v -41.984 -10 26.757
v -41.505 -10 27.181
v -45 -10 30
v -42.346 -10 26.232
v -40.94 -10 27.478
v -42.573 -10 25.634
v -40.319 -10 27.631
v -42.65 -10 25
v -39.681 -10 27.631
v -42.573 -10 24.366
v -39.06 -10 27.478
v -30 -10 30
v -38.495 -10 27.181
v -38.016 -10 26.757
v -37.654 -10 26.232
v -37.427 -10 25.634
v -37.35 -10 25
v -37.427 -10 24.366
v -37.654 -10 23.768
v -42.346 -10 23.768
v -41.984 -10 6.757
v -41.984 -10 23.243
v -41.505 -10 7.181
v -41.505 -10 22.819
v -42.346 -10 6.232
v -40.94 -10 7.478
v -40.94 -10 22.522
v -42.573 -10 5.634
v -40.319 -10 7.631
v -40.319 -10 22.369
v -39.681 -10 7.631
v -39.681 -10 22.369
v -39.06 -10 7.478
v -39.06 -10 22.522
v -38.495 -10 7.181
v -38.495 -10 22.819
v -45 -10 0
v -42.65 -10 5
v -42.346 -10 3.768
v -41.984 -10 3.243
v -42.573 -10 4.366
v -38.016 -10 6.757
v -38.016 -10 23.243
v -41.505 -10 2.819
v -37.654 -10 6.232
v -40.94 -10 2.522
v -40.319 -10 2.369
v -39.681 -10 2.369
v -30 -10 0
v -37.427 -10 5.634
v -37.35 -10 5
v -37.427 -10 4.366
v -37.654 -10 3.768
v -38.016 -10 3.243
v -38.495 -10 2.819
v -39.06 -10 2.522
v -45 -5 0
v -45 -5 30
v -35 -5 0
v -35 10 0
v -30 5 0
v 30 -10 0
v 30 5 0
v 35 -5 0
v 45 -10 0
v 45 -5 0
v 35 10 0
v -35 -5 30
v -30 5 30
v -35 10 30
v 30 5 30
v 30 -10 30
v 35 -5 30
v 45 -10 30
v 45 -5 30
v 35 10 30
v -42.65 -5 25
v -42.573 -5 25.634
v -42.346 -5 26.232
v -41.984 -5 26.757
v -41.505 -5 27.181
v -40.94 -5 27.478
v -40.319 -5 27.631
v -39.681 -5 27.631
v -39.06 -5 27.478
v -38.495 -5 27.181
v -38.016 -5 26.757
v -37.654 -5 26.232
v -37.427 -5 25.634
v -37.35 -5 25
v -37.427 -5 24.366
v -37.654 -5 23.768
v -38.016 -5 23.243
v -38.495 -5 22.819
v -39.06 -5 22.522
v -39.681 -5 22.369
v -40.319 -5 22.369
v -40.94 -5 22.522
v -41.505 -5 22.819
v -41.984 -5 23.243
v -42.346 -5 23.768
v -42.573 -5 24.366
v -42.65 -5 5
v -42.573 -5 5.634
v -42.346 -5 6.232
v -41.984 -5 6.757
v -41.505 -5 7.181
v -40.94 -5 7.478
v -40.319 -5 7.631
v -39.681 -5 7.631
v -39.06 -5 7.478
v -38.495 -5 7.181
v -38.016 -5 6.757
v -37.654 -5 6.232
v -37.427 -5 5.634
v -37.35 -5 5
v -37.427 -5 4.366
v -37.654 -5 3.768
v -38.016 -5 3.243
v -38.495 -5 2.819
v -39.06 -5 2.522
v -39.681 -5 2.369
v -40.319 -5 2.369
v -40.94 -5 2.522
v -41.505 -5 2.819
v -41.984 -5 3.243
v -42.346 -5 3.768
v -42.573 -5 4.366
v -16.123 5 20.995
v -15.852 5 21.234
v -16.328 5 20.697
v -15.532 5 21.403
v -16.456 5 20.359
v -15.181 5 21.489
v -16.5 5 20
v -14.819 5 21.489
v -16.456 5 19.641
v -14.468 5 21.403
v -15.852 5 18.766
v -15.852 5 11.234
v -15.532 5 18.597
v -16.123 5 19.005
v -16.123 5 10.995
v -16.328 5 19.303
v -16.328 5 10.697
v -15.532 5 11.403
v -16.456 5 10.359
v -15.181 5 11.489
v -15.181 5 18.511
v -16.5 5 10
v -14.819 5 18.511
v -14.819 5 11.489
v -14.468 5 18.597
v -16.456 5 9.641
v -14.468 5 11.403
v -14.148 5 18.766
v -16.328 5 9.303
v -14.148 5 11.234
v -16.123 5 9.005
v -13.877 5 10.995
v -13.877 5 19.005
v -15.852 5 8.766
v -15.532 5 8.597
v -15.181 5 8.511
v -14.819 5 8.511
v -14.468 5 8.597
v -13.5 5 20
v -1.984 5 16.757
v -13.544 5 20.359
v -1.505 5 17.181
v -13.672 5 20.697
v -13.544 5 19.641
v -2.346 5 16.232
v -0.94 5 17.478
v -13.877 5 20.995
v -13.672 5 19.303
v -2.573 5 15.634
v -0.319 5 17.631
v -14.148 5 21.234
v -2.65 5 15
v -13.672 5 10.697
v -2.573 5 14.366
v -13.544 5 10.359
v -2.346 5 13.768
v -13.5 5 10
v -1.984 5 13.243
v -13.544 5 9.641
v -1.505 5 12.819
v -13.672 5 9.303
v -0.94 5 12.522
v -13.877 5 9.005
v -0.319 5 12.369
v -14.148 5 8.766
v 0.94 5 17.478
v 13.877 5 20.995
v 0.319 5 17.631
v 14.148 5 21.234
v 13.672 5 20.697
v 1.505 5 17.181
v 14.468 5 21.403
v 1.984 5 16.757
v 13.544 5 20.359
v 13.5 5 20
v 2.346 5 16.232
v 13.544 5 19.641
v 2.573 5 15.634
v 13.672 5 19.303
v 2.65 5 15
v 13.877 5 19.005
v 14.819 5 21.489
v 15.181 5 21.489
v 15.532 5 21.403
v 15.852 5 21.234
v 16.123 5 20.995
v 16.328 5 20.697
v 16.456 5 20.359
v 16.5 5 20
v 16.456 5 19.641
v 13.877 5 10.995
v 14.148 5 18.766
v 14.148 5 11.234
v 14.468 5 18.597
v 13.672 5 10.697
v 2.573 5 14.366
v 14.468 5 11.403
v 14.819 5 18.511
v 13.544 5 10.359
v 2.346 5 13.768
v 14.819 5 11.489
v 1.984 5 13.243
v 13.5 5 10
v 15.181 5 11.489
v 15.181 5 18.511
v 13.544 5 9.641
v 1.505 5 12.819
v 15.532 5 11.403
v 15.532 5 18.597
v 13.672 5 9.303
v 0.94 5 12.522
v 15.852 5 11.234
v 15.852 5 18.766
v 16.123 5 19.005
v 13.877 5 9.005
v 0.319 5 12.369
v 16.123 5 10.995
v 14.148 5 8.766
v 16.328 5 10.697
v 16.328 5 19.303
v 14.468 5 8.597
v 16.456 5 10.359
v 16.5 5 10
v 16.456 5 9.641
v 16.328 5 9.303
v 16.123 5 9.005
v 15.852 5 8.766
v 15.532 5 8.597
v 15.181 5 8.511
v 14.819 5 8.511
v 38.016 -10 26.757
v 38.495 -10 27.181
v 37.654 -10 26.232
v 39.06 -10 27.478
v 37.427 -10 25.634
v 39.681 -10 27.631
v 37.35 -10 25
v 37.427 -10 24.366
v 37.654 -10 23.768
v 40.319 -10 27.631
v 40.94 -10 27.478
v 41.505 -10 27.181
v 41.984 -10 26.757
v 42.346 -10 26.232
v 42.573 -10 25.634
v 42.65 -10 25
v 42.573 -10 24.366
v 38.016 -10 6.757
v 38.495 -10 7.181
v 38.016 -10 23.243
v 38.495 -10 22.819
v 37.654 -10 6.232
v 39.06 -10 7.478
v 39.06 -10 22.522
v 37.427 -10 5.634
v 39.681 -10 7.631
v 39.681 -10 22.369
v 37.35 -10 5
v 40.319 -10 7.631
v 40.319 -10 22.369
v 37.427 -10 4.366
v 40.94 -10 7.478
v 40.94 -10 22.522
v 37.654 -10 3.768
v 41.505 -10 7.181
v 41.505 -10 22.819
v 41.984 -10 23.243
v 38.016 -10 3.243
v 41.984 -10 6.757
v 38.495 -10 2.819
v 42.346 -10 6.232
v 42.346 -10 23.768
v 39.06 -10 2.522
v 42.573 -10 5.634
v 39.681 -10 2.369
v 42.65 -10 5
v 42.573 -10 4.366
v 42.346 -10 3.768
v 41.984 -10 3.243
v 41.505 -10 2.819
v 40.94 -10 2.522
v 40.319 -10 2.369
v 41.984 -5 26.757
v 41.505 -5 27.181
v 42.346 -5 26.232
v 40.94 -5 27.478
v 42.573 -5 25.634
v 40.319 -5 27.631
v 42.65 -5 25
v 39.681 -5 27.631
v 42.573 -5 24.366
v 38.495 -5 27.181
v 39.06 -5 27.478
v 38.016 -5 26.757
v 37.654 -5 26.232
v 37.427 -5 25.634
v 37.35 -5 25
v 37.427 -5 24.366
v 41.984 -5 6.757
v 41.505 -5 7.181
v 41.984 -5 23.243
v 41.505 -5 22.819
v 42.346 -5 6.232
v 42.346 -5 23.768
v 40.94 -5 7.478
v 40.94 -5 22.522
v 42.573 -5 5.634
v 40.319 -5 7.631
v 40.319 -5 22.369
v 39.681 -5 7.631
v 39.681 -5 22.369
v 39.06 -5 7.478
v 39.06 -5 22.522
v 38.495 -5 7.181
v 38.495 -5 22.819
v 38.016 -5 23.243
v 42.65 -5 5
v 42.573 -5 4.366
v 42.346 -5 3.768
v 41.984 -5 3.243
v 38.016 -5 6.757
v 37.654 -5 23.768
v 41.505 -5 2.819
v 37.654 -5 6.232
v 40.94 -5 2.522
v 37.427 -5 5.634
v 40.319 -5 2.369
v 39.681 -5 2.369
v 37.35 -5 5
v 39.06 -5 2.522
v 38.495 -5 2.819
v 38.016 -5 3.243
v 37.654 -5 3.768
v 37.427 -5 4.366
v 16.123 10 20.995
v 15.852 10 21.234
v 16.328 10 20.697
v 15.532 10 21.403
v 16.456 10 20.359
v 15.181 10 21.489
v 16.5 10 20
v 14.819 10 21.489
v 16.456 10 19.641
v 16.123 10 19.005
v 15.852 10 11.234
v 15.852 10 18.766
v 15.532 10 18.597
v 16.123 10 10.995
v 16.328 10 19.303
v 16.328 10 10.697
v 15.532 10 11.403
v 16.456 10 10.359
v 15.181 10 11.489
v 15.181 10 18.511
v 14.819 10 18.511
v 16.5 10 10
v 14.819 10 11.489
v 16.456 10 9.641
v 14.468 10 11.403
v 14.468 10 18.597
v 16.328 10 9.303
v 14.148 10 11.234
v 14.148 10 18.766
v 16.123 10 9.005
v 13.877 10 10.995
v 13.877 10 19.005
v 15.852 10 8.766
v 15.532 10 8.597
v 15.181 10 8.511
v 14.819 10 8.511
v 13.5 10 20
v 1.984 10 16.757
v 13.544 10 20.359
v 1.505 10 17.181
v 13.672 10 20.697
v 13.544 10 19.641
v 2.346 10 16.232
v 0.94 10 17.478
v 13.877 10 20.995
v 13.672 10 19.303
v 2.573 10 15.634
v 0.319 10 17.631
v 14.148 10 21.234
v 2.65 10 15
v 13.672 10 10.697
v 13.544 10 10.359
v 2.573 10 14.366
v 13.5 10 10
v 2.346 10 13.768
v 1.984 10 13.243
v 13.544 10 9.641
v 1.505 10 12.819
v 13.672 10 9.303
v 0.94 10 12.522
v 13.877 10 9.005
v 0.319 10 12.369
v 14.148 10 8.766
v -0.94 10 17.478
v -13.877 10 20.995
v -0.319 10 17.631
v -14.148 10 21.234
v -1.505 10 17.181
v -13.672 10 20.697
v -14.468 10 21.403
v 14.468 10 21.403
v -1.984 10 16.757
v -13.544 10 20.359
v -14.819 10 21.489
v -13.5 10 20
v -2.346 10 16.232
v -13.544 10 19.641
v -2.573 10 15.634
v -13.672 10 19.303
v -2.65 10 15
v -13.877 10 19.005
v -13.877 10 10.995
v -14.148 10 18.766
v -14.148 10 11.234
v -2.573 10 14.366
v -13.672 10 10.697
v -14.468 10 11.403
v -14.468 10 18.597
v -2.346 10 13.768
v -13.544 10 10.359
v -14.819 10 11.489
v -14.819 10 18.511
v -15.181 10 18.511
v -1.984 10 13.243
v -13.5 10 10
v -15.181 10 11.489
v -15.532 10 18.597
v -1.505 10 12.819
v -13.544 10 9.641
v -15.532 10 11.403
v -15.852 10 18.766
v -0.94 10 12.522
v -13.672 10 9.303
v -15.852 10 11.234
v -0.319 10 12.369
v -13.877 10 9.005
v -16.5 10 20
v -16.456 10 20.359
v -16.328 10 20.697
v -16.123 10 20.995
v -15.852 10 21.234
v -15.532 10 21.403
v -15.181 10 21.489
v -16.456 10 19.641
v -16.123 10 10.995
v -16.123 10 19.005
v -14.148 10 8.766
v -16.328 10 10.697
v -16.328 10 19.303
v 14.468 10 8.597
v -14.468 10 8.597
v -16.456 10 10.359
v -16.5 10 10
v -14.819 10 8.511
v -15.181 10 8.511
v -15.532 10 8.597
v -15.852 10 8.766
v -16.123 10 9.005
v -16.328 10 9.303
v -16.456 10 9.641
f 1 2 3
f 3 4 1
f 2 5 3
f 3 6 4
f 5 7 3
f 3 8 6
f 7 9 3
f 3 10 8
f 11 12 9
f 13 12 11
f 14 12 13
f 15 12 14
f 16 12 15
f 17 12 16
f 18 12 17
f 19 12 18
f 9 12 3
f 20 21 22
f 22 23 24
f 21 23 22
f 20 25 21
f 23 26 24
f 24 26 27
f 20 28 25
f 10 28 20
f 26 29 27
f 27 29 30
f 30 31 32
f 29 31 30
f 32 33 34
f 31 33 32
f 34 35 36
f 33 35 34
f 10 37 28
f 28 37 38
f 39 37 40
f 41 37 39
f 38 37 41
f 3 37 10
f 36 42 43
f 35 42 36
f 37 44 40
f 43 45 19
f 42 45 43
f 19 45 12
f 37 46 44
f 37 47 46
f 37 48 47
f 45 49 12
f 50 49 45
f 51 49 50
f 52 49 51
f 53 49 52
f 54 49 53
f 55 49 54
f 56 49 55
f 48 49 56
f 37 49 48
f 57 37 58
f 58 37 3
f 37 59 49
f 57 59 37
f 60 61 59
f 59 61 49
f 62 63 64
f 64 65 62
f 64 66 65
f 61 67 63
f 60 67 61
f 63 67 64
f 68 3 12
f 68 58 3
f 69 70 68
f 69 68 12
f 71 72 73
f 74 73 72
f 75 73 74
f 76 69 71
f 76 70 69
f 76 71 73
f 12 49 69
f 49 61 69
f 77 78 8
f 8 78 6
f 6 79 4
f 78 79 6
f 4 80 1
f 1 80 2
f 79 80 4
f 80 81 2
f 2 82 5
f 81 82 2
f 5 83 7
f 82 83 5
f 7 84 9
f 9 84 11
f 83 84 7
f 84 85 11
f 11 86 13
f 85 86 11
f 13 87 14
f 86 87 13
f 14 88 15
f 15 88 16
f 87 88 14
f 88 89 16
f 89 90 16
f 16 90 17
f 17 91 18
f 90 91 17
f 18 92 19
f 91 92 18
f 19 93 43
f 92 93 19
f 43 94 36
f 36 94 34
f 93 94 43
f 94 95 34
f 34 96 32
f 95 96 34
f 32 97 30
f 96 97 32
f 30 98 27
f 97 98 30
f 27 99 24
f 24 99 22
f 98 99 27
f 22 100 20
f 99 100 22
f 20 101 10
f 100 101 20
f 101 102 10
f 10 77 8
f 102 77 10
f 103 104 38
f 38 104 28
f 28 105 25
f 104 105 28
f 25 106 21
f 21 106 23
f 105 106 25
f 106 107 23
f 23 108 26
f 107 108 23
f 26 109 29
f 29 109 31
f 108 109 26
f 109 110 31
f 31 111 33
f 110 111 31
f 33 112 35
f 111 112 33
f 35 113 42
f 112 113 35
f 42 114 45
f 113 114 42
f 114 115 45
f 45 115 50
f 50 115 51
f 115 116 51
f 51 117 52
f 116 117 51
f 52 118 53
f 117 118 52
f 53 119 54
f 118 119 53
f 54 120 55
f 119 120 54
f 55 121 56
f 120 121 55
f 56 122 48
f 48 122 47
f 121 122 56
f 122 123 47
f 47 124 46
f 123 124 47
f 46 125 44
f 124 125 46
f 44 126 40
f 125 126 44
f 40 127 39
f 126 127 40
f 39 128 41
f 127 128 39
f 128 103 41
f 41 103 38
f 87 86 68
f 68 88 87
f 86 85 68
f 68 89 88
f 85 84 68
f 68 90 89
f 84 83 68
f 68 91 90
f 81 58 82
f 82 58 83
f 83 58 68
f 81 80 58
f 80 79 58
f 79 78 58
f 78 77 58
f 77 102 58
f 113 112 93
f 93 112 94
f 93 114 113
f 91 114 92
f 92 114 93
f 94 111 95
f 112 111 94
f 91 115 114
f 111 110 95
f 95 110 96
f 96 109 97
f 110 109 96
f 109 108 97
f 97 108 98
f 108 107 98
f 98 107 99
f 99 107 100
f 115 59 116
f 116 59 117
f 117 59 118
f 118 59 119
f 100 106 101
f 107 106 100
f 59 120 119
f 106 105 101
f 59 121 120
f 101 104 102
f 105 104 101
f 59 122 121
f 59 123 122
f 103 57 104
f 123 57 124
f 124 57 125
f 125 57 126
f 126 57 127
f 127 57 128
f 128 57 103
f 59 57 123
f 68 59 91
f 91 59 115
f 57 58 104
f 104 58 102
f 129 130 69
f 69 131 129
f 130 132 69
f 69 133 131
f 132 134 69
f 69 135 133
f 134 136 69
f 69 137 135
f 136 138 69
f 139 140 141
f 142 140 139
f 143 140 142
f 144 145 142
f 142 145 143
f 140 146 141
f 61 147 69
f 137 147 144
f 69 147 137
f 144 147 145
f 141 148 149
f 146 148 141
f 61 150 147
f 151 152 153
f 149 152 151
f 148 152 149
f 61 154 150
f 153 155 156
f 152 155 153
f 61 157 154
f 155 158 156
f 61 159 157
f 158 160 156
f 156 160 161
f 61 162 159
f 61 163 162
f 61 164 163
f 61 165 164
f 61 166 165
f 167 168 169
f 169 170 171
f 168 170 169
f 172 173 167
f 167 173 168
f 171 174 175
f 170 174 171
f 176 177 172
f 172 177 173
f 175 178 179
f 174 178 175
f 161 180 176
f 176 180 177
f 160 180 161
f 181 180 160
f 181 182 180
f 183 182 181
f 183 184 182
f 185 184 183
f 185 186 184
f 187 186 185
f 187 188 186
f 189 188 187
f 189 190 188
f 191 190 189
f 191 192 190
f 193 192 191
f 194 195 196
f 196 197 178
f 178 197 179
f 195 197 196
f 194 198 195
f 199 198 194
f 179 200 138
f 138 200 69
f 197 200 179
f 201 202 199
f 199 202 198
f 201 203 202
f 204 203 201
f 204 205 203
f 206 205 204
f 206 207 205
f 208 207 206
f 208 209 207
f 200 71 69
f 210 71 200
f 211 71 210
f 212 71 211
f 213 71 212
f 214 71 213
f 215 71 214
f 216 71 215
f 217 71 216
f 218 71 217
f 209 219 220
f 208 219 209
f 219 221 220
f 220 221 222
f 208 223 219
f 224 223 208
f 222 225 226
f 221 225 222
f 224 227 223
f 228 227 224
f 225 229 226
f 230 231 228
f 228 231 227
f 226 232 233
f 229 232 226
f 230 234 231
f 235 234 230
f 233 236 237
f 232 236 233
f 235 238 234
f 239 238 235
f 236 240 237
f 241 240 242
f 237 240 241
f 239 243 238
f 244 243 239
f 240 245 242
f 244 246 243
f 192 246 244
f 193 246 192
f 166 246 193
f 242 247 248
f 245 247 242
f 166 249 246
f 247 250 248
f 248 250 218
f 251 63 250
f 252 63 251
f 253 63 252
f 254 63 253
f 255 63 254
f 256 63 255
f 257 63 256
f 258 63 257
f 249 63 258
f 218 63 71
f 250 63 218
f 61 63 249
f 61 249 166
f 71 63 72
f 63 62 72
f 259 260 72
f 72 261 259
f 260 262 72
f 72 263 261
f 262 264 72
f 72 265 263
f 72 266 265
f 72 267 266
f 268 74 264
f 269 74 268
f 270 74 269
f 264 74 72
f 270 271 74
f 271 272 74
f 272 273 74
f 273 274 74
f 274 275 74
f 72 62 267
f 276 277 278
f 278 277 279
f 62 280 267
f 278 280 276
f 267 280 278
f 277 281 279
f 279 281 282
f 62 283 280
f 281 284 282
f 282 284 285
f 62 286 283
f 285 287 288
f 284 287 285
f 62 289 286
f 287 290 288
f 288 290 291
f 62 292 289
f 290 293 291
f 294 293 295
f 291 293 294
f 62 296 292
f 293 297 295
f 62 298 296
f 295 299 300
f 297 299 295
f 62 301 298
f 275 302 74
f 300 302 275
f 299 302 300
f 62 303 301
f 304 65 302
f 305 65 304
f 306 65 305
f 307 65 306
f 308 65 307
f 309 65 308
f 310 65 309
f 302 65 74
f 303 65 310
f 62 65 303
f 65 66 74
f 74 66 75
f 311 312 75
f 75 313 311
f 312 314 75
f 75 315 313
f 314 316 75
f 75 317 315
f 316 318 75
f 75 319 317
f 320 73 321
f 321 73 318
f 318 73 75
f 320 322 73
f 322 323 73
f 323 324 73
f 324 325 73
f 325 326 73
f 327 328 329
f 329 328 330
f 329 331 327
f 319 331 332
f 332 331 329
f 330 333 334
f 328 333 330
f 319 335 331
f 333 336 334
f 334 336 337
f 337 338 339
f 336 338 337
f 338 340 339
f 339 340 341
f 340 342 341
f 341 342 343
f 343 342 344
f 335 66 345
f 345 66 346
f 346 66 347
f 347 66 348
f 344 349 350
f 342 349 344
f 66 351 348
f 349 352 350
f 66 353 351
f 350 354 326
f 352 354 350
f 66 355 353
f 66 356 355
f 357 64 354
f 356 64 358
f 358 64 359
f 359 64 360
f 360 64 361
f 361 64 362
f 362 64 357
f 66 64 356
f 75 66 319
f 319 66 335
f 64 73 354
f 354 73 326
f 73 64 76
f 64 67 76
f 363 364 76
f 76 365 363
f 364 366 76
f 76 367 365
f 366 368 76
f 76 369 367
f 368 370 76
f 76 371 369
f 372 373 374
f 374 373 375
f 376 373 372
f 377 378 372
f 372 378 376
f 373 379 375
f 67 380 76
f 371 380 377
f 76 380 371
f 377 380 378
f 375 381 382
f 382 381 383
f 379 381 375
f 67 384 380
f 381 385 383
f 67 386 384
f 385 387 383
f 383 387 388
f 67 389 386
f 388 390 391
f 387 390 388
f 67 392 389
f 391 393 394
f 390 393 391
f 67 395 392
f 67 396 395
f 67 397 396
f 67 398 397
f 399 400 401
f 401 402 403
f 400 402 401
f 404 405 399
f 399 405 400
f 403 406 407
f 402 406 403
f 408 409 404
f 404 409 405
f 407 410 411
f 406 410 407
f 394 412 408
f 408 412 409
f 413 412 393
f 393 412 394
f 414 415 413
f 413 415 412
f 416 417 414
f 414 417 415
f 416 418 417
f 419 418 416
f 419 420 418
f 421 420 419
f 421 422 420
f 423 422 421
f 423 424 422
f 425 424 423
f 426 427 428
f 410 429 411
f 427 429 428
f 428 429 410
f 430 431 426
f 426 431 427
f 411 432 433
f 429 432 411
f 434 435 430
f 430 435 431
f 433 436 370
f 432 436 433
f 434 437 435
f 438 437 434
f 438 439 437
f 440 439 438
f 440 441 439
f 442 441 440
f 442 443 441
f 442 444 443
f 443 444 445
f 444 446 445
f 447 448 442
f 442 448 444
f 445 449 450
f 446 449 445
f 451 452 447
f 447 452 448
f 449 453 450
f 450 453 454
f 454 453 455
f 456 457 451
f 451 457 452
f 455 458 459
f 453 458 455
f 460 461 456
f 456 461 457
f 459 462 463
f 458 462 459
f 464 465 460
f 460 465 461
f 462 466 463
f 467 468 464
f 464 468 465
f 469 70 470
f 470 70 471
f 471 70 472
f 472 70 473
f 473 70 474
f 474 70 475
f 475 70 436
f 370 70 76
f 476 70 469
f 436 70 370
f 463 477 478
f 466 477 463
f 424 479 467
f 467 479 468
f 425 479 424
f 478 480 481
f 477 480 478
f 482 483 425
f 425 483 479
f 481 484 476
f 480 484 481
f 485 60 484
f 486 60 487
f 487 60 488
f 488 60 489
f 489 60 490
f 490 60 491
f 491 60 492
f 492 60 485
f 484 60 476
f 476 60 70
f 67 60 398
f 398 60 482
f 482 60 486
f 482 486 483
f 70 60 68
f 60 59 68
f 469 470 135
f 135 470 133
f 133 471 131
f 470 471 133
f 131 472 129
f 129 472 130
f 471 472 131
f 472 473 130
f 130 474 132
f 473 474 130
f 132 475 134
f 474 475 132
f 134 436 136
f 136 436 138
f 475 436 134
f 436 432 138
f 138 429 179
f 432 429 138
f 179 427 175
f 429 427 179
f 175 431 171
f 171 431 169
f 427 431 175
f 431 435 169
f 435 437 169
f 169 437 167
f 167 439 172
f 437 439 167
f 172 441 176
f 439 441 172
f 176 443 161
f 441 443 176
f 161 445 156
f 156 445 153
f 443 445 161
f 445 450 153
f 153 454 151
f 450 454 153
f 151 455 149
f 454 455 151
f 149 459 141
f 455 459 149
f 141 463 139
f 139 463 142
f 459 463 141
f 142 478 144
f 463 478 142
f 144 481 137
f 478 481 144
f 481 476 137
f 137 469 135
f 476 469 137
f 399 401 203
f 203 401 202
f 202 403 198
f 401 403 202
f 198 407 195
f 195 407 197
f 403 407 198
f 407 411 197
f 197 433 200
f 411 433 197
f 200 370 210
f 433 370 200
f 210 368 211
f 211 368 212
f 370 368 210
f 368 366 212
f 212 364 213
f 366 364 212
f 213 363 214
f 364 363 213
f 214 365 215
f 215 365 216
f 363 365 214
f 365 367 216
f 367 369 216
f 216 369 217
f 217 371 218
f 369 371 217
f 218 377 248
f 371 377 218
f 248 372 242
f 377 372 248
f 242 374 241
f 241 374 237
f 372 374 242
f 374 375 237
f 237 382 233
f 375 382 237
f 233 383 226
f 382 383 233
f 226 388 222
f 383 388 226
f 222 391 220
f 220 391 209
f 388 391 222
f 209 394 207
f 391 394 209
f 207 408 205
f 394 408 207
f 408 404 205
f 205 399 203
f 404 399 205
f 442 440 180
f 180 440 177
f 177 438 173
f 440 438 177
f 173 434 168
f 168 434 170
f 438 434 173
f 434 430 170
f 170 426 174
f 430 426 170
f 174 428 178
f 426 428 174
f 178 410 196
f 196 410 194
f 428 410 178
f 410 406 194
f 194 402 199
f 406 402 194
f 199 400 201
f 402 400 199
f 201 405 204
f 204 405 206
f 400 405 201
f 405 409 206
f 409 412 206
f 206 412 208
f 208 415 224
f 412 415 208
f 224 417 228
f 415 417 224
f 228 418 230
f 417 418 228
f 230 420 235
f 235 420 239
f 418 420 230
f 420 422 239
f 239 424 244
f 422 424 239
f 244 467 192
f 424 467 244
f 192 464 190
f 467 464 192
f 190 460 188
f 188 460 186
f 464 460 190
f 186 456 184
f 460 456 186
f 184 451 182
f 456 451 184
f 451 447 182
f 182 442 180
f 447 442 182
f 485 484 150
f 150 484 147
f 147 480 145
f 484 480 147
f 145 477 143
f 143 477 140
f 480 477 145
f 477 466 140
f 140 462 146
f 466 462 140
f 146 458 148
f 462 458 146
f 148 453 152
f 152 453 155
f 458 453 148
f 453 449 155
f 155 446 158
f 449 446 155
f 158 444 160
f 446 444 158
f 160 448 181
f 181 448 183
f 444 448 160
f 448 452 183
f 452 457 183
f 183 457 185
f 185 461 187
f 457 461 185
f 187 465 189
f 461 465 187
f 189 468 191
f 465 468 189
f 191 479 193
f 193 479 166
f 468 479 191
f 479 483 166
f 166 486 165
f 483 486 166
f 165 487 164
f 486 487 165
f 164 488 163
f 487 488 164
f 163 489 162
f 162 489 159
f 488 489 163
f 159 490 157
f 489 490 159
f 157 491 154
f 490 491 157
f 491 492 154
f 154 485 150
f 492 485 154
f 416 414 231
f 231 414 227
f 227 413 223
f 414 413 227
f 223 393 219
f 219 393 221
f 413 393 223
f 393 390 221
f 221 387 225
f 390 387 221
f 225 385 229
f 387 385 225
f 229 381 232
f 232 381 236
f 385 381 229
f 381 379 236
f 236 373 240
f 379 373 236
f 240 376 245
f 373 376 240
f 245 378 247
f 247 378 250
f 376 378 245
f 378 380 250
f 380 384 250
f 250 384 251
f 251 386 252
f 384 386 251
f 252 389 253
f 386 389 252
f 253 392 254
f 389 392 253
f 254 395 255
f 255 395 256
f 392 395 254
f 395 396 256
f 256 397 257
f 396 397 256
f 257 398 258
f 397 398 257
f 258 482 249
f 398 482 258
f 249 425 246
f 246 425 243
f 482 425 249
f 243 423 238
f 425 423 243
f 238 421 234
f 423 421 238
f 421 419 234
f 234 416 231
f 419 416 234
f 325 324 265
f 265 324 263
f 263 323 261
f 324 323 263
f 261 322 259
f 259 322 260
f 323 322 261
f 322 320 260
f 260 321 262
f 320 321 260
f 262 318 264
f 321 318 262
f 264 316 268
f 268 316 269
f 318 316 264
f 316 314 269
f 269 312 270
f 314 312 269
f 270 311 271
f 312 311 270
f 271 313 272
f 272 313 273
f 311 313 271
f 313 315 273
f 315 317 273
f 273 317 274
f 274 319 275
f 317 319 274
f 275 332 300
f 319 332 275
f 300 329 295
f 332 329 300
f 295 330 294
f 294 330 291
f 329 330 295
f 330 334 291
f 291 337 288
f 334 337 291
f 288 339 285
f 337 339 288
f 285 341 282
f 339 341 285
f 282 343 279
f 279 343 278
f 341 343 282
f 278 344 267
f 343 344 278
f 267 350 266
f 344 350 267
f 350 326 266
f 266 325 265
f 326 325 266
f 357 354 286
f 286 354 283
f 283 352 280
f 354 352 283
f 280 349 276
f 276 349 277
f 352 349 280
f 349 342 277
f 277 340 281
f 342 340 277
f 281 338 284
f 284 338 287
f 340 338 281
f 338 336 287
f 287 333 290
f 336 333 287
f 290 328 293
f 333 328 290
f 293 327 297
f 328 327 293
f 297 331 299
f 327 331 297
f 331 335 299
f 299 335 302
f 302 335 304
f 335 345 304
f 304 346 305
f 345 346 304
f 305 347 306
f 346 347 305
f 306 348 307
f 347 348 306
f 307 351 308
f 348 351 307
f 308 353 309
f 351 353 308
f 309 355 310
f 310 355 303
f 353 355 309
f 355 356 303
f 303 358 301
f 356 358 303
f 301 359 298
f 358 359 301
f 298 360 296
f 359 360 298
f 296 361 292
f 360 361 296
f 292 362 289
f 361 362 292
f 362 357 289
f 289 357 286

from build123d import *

# Parameters (mm, degrees)
PAD_DEPTH       = 30
SKETCH001_R     = 2.65
POCKET_DEPTH    = 5
SKETCH002_R     = 2.65
SKETCH002_R_2   = 1.5
POCKET001_DEPTH = 5


with BuildPart() as part:
    # Sketch → Pad (new body)
    with BuildSketch(Plane.XY):
        Polygon((-45, -10), (-30, -10), (-30, 5), (30, 5), (30, -10), (45, -10), (45, -5), (35, -5), (35, 10), (-35, 10), (-35, -5), (-45, -5), align=None)
    extrude(amount=PAD_DEPTH)

    # Sketch001 (on Face11 of Pad) → Pocket (cut)
    with BuildSketch(Plane(origin=(0, -5, 0), x_dir=(-1, 0, 0), z_dir=(0, 1, 0))):
        with Locations((-40, 25)):
            Circle(SKETCH001_R)
        with Locations((-40, 5)):
            Circle(SKETCH001_R)
        with Locations((40, 25)):
            Circle(SKETCH001_R)
        with Locations((40, 5)):
            Circle(SKETCH001_R)
    extrude(amount=-POCKET_DEPTH, mode=Mode.SUBTRACT)

    # Sketch002 (on Face15 of Pocket) → Pocket001 (cut)
    with BuildSketch(Plane(origin=(0, 10, 0), x_dir=(-1, 0, 0), z_dir=(0, 1, 0))):
        with Locations((0, 15)):
            Circle(SKETCH002_R)
        with Locations((-15, 20)):
            Circle(SKETCH002_R_2)
        with Locations((-15, 10)):
            Circle(SKETCH002_R_2)
        with Locations((15, 20)):
            Circle(SKETCH002_R_2)
        with Locations((15, 10)):
            Circle(SKETCH002_R_2)
    extrude(amount=-POCKET001_DEPTH, mode=Mode.SUBTRACT)


solid = part.part
